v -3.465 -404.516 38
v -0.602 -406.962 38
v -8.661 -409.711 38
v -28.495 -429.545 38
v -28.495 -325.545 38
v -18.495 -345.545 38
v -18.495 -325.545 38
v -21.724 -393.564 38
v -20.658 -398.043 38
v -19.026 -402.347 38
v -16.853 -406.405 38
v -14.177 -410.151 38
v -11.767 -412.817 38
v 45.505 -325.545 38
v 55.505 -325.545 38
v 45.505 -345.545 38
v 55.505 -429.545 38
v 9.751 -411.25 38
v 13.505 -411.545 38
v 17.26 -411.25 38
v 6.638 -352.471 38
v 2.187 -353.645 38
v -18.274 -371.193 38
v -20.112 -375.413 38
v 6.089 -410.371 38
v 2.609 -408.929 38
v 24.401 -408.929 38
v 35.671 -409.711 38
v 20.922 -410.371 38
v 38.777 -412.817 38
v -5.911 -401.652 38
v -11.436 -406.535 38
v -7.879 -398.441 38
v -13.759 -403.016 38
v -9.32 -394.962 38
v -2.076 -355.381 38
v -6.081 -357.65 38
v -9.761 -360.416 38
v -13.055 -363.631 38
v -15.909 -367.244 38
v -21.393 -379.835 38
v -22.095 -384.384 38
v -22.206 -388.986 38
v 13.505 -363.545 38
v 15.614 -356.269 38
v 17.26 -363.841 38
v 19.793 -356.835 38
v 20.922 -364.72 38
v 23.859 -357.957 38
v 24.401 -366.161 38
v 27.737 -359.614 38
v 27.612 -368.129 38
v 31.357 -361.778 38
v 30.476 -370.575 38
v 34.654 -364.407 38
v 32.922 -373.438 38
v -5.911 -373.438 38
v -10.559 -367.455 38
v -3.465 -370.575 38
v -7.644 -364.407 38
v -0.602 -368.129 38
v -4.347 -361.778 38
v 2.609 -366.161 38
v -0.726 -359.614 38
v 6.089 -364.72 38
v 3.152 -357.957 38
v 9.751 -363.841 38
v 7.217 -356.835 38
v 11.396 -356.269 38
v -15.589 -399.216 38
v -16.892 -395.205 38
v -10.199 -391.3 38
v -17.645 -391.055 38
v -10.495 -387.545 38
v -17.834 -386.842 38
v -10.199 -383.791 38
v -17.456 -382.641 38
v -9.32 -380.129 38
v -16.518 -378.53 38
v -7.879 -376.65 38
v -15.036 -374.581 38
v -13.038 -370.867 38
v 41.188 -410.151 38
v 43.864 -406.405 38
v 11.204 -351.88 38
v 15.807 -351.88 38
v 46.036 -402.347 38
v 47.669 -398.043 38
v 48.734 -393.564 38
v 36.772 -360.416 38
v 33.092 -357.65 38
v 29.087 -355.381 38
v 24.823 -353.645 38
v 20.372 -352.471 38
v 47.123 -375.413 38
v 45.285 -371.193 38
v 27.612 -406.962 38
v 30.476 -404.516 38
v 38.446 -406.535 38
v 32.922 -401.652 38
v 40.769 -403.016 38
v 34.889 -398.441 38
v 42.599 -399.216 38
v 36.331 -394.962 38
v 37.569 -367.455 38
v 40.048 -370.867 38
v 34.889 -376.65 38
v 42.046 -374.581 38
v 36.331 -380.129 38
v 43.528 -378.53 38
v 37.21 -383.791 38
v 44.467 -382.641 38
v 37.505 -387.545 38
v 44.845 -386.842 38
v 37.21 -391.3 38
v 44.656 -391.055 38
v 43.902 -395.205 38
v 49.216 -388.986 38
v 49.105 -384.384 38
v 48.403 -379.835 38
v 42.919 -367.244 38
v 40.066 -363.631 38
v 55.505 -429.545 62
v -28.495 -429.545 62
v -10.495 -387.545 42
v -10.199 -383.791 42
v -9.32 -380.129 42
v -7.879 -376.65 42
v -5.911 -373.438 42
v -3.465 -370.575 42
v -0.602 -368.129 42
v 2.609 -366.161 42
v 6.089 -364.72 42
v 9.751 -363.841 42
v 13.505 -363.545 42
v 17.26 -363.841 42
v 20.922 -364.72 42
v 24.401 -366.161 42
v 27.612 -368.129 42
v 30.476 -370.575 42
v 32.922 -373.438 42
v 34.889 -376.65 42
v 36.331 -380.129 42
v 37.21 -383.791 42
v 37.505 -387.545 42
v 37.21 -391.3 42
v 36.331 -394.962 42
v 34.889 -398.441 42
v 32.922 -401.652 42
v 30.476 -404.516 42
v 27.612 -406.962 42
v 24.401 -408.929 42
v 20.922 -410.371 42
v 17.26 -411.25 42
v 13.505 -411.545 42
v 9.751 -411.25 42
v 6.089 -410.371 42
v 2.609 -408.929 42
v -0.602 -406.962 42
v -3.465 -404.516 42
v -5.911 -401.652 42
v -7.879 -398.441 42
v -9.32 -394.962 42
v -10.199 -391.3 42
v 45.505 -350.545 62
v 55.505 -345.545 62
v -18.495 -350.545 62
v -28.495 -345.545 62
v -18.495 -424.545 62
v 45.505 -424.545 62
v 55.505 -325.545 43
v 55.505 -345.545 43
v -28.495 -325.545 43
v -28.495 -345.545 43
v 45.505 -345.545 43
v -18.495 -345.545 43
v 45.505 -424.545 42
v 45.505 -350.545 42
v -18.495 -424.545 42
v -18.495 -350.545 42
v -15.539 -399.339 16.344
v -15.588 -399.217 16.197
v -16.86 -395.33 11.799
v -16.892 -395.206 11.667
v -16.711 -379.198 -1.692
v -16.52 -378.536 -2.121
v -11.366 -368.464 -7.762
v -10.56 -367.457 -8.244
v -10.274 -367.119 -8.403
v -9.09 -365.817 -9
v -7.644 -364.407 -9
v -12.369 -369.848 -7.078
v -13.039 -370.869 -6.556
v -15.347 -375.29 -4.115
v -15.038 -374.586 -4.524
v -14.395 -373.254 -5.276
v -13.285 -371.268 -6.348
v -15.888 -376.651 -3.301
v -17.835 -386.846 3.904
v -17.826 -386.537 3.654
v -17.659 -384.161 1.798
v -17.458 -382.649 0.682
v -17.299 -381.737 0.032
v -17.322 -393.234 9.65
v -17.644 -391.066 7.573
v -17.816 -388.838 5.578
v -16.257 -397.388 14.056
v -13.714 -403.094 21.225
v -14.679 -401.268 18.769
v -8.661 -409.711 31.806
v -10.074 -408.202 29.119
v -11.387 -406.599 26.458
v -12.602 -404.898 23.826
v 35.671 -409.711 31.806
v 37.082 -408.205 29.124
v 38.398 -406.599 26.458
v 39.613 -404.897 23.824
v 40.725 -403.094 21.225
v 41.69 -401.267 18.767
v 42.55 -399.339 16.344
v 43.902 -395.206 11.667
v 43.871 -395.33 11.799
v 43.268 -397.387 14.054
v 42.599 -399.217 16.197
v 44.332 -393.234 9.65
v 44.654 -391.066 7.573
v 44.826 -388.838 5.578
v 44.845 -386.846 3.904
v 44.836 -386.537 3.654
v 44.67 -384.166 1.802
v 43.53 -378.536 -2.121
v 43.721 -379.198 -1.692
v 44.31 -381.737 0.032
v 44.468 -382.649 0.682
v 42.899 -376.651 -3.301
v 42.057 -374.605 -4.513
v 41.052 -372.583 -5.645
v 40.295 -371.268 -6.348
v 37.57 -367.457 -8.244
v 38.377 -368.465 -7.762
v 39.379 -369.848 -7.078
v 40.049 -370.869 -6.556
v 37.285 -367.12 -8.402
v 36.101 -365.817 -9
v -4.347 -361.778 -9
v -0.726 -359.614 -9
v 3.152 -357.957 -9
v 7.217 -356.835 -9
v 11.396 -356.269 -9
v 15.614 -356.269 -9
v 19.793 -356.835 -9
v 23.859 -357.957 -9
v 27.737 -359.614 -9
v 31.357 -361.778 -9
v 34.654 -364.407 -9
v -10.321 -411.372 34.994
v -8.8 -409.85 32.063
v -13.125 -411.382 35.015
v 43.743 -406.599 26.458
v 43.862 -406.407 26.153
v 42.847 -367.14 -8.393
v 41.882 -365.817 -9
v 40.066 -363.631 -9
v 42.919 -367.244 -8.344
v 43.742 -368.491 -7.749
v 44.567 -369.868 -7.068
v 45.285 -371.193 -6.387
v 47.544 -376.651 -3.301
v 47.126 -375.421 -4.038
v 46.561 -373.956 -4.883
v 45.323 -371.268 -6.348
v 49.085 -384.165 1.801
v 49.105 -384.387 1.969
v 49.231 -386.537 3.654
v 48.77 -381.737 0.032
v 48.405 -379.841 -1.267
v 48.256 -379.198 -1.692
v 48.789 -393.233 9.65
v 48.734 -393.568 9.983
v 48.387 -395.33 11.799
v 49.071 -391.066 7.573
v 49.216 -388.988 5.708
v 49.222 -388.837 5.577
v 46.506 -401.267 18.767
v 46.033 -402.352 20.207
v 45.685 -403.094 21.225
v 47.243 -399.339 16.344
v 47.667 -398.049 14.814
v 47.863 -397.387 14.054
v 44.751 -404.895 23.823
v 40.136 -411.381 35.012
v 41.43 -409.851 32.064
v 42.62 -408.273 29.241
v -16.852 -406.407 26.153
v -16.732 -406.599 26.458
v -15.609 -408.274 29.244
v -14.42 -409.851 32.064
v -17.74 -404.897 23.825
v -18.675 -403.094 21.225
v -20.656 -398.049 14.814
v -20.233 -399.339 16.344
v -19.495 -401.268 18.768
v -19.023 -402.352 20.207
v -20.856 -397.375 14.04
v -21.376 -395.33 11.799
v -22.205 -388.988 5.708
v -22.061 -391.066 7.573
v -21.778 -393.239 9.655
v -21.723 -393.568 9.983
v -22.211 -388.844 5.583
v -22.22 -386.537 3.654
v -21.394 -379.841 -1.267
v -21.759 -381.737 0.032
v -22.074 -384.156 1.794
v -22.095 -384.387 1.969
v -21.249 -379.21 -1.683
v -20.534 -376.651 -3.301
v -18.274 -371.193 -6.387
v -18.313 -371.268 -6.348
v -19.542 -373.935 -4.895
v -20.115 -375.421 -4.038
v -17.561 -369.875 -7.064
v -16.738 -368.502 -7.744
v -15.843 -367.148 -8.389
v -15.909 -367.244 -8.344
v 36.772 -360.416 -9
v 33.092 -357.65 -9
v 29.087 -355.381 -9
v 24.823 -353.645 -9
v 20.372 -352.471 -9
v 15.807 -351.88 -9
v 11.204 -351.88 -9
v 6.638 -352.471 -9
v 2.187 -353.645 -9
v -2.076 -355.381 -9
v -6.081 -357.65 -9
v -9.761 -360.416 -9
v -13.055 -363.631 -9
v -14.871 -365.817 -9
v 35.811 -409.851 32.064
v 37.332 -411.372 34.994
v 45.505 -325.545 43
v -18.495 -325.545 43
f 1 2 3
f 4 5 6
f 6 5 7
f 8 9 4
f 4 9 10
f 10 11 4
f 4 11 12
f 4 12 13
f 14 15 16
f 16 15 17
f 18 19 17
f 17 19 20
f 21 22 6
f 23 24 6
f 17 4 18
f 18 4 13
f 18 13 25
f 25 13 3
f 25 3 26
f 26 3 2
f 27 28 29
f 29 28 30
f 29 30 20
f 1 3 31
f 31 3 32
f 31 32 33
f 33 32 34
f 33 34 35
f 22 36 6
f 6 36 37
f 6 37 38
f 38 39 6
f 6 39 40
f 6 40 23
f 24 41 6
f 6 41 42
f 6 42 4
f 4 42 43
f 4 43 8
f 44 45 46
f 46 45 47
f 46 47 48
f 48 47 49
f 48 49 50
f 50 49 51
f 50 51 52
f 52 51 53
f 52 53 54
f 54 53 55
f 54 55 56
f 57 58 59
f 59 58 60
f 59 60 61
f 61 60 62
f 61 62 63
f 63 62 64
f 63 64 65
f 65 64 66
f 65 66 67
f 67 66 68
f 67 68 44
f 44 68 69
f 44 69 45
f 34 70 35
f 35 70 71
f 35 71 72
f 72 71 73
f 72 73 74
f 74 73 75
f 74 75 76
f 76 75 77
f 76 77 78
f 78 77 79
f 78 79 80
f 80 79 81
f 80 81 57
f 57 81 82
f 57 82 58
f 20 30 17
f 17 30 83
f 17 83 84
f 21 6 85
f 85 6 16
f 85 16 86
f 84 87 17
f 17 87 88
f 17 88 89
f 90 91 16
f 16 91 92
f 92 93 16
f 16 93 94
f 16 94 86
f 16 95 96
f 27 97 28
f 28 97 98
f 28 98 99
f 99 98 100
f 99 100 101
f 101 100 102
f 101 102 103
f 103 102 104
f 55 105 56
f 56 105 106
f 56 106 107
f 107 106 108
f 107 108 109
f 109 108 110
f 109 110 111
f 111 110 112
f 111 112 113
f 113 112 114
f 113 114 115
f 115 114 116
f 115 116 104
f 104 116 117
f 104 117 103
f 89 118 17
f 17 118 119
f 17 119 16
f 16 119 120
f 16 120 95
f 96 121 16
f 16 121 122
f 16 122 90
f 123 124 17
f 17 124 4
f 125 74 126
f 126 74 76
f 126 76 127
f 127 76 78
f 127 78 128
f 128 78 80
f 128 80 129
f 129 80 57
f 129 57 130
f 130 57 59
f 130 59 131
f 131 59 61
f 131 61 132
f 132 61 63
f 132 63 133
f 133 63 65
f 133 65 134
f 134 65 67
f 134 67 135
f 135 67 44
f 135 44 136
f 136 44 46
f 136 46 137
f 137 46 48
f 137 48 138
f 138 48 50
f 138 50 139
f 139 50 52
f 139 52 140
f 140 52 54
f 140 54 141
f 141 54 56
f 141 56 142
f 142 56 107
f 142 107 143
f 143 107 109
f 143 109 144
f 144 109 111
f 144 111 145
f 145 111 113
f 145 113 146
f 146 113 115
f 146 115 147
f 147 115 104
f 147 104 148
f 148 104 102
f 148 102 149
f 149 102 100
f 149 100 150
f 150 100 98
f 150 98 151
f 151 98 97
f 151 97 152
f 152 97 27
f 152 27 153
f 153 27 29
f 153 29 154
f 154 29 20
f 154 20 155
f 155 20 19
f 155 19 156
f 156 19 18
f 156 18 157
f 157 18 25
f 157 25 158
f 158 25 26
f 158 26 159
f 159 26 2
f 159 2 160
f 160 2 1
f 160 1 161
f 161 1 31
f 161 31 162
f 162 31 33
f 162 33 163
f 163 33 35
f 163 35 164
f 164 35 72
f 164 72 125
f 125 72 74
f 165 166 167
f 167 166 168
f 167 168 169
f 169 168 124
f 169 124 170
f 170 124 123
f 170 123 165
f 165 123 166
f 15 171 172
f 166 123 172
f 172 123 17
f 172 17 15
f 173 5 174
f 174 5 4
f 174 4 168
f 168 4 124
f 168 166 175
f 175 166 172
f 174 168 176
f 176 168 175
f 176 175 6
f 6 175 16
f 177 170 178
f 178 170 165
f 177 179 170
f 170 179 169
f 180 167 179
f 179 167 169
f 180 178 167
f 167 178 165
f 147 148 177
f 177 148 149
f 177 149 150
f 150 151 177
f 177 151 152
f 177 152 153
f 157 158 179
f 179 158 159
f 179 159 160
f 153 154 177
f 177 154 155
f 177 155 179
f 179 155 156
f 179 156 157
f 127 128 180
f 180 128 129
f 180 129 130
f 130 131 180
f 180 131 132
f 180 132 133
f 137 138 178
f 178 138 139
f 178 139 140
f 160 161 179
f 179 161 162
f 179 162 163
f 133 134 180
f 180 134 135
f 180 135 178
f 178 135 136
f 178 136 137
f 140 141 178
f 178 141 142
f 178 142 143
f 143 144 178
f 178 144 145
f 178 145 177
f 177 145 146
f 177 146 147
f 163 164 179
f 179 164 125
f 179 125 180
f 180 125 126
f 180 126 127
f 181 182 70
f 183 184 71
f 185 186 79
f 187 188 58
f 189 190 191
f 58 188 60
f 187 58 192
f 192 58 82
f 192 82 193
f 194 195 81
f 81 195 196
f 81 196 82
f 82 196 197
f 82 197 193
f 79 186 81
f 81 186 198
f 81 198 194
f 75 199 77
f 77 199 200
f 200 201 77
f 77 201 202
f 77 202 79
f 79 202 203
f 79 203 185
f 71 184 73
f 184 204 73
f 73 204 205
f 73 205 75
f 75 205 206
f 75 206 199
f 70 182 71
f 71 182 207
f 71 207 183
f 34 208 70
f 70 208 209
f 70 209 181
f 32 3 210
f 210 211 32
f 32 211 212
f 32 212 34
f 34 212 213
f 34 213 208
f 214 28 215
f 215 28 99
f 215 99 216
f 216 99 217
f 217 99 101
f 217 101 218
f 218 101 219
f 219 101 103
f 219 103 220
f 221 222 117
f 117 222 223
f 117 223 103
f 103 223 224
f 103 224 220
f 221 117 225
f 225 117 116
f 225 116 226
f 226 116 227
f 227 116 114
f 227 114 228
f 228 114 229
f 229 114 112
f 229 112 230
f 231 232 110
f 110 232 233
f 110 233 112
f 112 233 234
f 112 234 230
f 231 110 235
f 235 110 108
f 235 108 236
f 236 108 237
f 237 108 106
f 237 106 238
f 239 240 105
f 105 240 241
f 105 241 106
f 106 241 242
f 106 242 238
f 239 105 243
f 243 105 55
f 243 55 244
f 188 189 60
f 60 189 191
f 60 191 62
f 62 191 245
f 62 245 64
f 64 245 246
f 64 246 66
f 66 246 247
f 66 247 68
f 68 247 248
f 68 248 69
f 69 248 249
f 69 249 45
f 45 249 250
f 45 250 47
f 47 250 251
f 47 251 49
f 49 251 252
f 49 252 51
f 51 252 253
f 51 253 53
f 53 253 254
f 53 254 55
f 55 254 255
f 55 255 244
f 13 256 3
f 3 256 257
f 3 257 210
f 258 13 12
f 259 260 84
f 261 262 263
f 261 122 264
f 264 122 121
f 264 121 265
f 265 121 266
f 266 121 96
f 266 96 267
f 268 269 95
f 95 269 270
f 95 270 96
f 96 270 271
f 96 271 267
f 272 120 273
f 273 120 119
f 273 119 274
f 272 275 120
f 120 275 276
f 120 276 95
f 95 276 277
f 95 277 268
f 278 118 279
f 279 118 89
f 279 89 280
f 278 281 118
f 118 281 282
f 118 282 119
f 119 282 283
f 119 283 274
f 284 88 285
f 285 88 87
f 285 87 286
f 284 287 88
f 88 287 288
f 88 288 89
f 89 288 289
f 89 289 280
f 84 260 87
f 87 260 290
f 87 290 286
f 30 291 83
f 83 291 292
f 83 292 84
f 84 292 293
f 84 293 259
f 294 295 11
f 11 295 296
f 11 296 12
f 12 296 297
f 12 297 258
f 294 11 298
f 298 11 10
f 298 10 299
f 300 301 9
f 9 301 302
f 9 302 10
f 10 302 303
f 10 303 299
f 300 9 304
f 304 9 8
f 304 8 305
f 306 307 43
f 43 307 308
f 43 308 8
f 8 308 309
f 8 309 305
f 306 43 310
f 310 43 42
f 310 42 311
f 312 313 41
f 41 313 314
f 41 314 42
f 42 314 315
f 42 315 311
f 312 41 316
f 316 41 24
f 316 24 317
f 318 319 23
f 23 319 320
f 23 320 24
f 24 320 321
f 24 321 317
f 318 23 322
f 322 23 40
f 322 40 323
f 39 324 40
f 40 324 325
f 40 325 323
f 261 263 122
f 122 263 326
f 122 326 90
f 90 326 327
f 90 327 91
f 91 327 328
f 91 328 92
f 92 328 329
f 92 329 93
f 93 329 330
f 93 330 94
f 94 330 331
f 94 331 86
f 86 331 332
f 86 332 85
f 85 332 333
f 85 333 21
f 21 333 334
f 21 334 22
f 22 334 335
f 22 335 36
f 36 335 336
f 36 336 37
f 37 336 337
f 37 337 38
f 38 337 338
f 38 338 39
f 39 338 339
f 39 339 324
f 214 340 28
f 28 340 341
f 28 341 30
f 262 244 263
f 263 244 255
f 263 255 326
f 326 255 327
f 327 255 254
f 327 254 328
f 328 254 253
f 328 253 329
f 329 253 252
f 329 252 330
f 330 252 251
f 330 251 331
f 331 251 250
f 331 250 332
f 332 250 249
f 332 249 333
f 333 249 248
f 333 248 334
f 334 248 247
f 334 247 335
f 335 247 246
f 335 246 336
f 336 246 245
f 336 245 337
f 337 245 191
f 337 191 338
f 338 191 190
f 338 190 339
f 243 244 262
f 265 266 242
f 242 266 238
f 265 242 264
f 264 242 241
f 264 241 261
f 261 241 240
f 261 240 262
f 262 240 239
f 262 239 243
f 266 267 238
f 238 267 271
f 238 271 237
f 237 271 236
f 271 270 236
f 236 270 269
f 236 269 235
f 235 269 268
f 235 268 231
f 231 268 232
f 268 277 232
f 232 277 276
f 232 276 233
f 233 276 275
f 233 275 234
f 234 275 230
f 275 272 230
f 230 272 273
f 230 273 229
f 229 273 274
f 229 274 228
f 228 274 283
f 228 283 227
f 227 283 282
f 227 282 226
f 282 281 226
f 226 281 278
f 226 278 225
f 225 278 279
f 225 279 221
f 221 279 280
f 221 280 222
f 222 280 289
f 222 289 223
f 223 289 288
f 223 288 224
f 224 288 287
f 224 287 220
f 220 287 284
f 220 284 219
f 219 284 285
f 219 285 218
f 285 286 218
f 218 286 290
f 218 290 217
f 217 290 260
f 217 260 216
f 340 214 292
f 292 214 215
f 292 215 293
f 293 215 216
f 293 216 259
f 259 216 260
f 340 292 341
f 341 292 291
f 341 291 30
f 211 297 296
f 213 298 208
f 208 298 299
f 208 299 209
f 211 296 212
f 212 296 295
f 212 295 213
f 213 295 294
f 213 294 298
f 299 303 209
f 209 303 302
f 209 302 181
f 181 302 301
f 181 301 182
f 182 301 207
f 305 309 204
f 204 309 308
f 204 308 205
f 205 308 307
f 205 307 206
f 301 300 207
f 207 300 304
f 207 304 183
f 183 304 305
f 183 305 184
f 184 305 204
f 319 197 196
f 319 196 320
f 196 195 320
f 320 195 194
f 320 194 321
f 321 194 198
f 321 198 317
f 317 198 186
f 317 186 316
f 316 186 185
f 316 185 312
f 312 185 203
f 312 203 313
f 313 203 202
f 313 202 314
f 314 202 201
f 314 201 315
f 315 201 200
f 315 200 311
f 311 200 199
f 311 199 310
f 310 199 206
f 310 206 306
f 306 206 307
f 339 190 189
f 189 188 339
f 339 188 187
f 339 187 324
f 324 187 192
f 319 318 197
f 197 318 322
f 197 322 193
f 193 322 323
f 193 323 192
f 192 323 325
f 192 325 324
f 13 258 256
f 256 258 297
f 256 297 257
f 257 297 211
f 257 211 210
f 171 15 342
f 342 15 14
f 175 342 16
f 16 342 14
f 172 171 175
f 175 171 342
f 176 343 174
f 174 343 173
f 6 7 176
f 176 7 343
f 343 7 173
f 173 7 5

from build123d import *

# Parameters (mm, degrees)
SKETCH2_W            = 350
SKETCH2_H            = 1050
SKETCH2_R            = 100
BOSS_EXTRUDE2_DEPTH  = 100
SCALE1_SCALE         = 0.24
SKETCH6_W            = 84
SKETCH6_H            = 168
CUT_EXTRUDE3_DEPTH   = 80
SKETCH11_W           = 64
SKETCH11_H           = 74
CUT_EXTRUDE8_DEPTH   = 20
SKETCH12_W           = 10
SKETCH12_H           = 5
BOSS_EXTRUDE6_DEPTH  = 20
SKETCH13_W           = 10
SKETCH13_H           = 5
BOSS_EXTRUDE7_DEPTH  = 20
SKETCH14_W           = 10
SKETCH14_H           = 5
CUT_EXTRUDE9_DEPTH   = 40
SKETCH15_W           = 10
SKETCH15_H           = 5
CUT_EXTRUDE10_DEPTH  = 40
SKETCH16_W           = 10
SKETCH16_H           = 20
CUT_EXTRUDE11_DEPTH  = 5
SKETCH17_W           = 10
SKETCH17_H           = 20
CUT_EXTRUDE12_DEPTH  = 5
BOSS_EXTRUDE9_DEPTH  = 47
SWEEP3_START         = -9
SWEEP3_DEPTH         = 47
CUT_EXTRUDE13_DEPTH  = 82
SKETCH28_W           = 10
SKETCH28_H           = 20
BOSS_EXTRUDE10_DEPTH = 5
SKETCH29_W           = 10
SKETCH29_H           = 20
BOSS_EXTRUDE11_DEPTH = 5
SKETCH30_W           = 10
SKETCH30_H           = 5
BOSS_EXTRUDE12_DEPTH = 40
SKETCH31_W           = 10
SKETCH31_H           = 5
BOSS_EXTRUDE13_DEPTH = 40


# Read off the part's stored shape, not the designer's step: Sweep3
with BuildPart() as part:
    # Sketch2 → Boss-Extrude2 (new body)
    with BuildSketch(Plane.XY):
        with Locations((13.505164405, -303.545290931)):
            Rectangle(SKETCH2_W, SKETCH2_H)
        with Locations((13.505164405, 46.454709069)):
            Circle(SKETCH2_R, mode=Mode.SUBTRACT)
        with Locations((13.505164405, -303.545290931)):
            Circle(SKETCH2_R, mode=Mode.SUBTRACT)
        with Locations((13.505164405, -653.545290931)):
            Circle(SKETCH2_R, mode=Mode.SUBTRACT)
    extrude(amount=BOSS_EXTRUDE2_DEPTH)


with BuildPart() as part_1:
    # Scale1: scaled about (13.505164405, -303.545290931, 50)
    add(part.part.scale(SCALE1_SCALE).moved(Location((10.263924948, -230.694421108, 38))))

    # Sketch6 → Cut-Extrude3 (cut)
    with BuildSketch(Plane.XY.offset(62)):
        with Locations((13.505164405, -261.545290931)):
            Rectangle(SKETCH6_W, SKETCH6_H)
    extrude(amount=-CUT_EXTRUDE3_DEPTH, mode=Mode.SUBTRACT)

    # Sketch11 → Cut-Extrude8 (cut)
    with BuildSketch(Plane.XY.offset(62)):
        with Locations((13.505164405, -387.545290931)):
            Rectangle(SKETCH11_W, SKETCH11_H)
    extrude(amount=-CUT_EXTRUDE8_DEPTH, mode=Mode.SUBTRACT)

    # Sketch12 → Boss-Extrude6 (add)
    with BuildSketch(Plane(origin=(0, -429.545290931, 0), x_dir=(-1, 0, 0), z_dir=(0, -1, 0))):
        with Locations((23.494835595, -40.5)):
            Rectangle(SKETCH12_W, SKETCH12_H)
    extrude(amount=BOSS_EXTRUDE6_DEPTH)

    # Sketch13 → Boss-Extrude7 (add)
    with BuildSketch(Plane(origin=(0, -429.545290931, 0), x_dir=(-1, 0, 0), z_dir=(0, -1, 0))):
        with Locations((-50.505164405, -40.5)):
            Rectangle(SKETCH13_W, SKETCH13_H)
    extrude(amount=BOSS_EXTRUDE7_DEPTH)

    # Sketch14 → Cut-Extrude9 (cut)
    with BuildSketch(Plane.XZ.offset(449.545290931)):
        with Locations((-23.494835595, 40.5)):
            Rectangle(SKETCH14_W, SKETCH14_H)
    extrude(amount=-CUT_EXTRUDE9_DEPTH, mode=Mode.SUBTRACT)

    # Sketch15 → Cut-Extrude10 (cut)
    with BuildSketch(Plane(origin=(0, -449.545290931, 0), x_dir=(-1, 0, 0), z_dir=(0, -1, 0))):
        with Locations((-50.505164405, -40.5)):
            Rectangle(SKETCH15_W, SKETCH15_H)
    extrude(amount=-CUT_EXTRUDE10_DEPTH, mode=Mode.SUBTRACT)

    # Sketch16 → Cut-Extrude11 (cut)
    with BuildSketch(Plane(origin=(0, 0, 38), x_dir=(-1, 0, 0), z_dir=(0, 0, -1))):
        with Locations((23.494835595, -355.545290931)):
            Rectangle(SKETCH16_W, SKETCH16_H)
    extrude(amount=-CUT_EXTRUDE11_DEPTH, mode=Mode.SUBTRACT)

    # Sketch17 → Cut-Extrude12 (cut)
    with BuildSketch(Plane(origin=(0, 0, 38), x_dir=(-1, 0, 0), z_dir=(0, 0, -1))):
        with Locations((-50.505164405, -355.545290931)):
            Rectangle(SKETCH17_W, SKETCH17_H)
    extrude(amount=-CUT_EXTRUDE12_DEPTH, mode=Mode.SUBTRACT)

    # Sketch18 → Boss-Extrude9 (add)
    with BuildSketch(Plane(origin=(0, 0, 38), x_dir=(-1, 0, 0), z_dir=(0, 0, -1))):
        with BuildLine():
            Line((-35.671185106, -409.711311632), (-38.7770157, -412.817142227))
            ThreePointArc((-38.7770157, -412.817142227), (-13.505164405, -351.805496082), (11.766686891, -412.817142227))
            Line((11.766686891, -412.817142227), (8.660856297, -409.711311632))
            ThreePointArc((8.660856297, -409.711311632), (-13.505164405, -356.197803831), (-35.671185106, -409.711311632))
        make_face()
    extrude(amount=BOSS_EXTRUDE9_DEPTH)


with BuildPart() as body_2:
    # Sweep3 outline → Sweep3 (new body)
    with BuildSketch(Plane.XY.offset(SWEEP3_START)):
        with BuildLine():
            Line((35.671185106, -409.711311632), (38.7770157, -412.817142227))
            ThreePointArc((38.7770157, -412.817142227), (13.505164405, -351.805496082), (-11.766686891, -412.817142227))
            Line((-11.766686891, -412.817142227), (-8.660856297, -409.711311632))
            ThreePointArc((-8.660856297, -409.711311632), (13.505164404, -356.197803831), (35.671185106, -409.711311632))
        make_face()
    extrude(amount=SWEEP3_DEPTH)


with BuildPart() as cut_extrude13_tool:
    # Sketch27 → Cut-Extrude13 (new body)
    with BuildSketch(Plane.ZY.offset(28.494835595)):
        with BuildLine():
            Line((38, -412.817142227), (-9, -412.817142227))
            Line((-9, -412.817142227), (-9, -365.817142227))
            add(Edge.make_bspline(
                [(-9, -365.817142227), (5.370162337, -397.723377267), (38, -412.817142227)],
                knots=[0, 0, 0, 1, 1, 1], degree=2))
        make_face()
    extrude(amount=-CUT_EXTRUDE13_DEPTH)


with BuildPart() as part_2:
    add(part_1.part)

    # Cut-Extrude13: cut by cut_extrude13_tool
    add(cut_extrude13_tool.part, mode=Mode.SUBTRACT)



with BuildPart() as body_2_1:
    add(body_2.part)

    # Cut-Extrude13: cut by cut_extrude13_tool
    add(cut_extrude13_tool.part, mode=Mode.SUBTRACT)


with BuildPart() as part_3:
    add(part_2.part)

    add(body_2_1.part)  # Boss-Extrude10 merges body 2
    # Sketch28 → Boss-Extrude10 (add)
    with BuildSketch(Plane(origin=(0, 0, 43), x_dir=(-1, 0, 0), z_dir=(0, 0, -1))):
        with Locations((-50.505164405, -419.545290931)):
            Rectangle(SKETCH28_W, SKETCH28_H)
    extrude(amount=BOSS_EXTRUDE10_DEPTH)

    # Sketch29 → Boss-Extrude11 (add)
    with BuildSketch(Plane(origin=(0, 0, 43), x_dir=(-1, 0, 0), z_dir=(0, 0, -1))):
        with Locations((23.494835595, -419.545290931)):
            Rectangle(SKETCH29_W, SKETCH29_H)
    extrude(amount=BOSS_EXTRUDE11_DEPTH)

    # Sketch30 → Boss-Extrude12 (add)
    with BuildSketch(Plane(origin=(0, -365.545290931, 0), x_dir=(1, 0, 0), z_dir=(0, 1, 0))):
        with Locations((50.505164405, -40.5)):
            Rectangle(SKETCH30_W, SKETCH30_H)
    extrude(amount=BOSS_EXTRUDE12_DEPTH)

    # Sketch31 → Boss-Extrude13 (add)
    with BuildSketch(Plane(origin=(0, -365.545290931, 0), x_dir=(1, 0, 0), z_dir=(0, 1, 0))):
        with Locations((-23.494835595, -40.5)):
            Rectangle(SKETCH31_W, SKETCH31_H)
    extrude(amount=BOSS_EXTRUDE13_DEPTH)


solid = part_3.part
